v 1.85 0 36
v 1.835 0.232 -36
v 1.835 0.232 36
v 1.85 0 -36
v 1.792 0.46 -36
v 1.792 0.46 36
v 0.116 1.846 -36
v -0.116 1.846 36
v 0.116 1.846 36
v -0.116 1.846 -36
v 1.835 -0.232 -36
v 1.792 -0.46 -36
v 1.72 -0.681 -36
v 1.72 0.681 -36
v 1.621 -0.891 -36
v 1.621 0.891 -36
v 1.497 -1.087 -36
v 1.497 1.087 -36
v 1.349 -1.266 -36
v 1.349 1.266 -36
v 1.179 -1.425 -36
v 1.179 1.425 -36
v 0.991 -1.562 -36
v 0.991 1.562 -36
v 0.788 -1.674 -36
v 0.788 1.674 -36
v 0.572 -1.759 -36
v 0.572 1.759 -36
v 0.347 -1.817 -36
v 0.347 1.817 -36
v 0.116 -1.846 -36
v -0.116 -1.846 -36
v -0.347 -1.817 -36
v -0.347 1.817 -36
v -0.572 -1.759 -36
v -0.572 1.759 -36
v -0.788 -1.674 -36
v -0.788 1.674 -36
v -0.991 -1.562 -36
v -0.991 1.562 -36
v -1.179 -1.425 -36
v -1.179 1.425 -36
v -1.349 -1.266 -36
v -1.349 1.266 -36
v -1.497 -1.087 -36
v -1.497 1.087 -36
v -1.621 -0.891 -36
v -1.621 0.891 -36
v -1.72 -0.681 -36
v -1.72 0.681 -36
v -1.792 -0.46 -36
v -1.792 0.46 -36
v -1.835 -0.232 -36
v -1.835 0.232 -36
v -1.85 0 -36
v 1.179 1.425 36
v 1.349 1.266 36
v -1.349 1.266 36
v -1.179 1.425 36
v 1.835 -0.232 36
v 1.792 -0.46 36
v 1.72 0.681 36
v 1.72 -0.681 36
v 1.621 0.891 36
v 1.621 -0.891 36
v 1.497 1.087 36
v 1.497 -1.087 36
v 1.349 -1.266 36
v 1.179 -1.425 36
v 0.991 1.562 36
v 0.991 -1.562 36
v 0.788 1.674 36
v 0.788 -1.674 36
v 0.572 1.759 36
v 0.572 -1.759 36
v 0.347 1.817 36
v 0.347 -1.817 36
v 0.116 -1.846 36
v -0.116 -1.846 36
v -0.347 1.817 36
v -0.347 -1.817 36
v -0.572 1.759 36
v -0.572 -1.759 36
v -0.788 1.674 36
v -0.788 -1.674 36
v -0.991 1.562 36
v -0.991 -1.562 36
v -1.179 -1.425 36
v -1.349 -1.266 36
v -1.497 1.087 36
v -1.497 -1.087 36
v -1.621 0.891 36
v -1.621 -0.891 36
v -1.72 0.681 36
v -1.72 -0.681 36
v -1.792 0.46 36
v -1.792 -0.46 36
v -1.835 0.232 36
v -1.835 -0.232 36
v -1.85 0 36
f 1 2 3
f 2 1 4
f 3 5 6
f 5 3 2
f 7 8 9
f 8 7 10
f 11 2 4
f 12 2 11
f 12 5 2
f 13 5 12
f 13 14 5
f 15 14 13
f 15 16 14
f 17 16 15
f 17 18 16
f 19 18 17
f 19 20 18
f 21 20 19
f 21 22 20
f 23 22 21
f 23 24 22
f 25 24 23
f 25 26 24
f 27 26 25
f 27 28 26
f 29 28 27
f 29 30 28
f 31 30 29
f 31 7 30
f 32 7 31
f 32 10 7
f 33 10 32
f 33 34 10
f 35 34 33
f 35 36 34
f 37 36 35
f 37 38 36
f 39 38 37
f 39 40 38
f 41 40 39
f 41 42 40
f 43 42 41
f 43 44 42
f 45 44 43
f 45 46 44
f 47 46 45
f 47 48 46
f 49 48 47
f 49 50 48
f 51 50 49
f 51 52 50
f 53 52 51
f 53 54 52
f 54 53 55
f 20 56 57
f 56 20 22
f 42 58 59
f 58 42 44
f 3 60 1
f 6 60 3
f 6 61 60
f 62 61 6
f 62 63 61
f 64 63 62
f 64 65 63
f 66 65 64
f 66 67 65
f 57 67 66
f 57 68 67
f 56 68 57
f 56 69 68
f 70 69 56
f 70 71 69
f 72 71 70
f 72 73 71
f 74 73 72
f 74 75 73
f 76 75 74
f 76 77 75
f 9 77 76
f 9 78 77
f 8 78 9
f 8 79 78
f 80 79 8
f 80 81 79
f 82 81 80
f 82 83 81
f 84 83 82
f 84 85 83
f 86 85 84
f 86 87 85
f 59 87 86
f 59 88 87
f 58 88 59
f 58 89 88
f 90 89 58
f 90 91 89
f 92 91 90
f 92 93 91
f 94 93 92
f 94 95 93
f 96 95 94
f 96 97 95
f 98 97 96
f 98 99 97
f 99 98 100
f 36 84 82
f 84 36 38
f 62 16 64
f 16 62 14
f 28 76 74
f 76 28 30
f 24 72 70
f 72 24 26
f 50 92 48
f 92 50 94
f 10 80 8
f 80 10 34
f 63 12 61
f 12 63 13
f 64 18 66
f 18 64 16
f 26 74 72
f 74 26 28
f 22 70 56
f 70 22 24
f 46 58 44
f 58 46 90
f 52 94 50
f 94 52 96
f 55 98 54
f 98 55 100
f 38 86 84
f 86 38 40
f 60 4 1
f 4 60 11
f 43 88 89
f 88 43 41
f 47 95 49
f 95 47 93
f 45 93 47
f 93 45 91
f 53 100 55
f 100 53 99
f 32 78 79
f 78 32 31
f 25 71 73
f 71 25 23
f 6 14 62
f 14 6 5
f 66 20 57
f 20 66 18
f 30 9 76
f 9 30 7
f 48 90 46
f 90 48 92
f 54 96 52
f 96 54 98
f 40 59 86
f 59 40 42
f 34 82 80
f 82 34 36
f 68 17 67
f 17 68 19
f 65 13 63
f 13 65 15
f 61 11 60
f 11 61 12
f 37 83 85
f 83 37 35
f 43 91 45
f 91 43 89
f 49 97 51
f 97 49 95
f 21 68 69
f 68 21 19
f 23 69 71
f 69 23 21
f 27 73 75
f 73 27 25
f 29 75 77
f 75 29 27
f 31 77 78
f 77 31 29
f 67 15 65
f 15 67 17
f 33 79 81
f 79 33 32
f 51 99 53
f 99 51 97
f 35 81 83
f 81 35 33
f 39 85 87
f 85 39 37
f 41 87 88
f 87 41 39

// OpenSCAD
$fn = 50;


difference() {
	union() {
		translate(v = [0, 0, -36.0000000000]) {
			cylinder(h = 72, r = 1.8500000000);
		}
	}
	union() {
		translate(v = [0, 0, -100.0000000000]) {
			cylinder(h = 200, r = 0);
		}
	}
}
